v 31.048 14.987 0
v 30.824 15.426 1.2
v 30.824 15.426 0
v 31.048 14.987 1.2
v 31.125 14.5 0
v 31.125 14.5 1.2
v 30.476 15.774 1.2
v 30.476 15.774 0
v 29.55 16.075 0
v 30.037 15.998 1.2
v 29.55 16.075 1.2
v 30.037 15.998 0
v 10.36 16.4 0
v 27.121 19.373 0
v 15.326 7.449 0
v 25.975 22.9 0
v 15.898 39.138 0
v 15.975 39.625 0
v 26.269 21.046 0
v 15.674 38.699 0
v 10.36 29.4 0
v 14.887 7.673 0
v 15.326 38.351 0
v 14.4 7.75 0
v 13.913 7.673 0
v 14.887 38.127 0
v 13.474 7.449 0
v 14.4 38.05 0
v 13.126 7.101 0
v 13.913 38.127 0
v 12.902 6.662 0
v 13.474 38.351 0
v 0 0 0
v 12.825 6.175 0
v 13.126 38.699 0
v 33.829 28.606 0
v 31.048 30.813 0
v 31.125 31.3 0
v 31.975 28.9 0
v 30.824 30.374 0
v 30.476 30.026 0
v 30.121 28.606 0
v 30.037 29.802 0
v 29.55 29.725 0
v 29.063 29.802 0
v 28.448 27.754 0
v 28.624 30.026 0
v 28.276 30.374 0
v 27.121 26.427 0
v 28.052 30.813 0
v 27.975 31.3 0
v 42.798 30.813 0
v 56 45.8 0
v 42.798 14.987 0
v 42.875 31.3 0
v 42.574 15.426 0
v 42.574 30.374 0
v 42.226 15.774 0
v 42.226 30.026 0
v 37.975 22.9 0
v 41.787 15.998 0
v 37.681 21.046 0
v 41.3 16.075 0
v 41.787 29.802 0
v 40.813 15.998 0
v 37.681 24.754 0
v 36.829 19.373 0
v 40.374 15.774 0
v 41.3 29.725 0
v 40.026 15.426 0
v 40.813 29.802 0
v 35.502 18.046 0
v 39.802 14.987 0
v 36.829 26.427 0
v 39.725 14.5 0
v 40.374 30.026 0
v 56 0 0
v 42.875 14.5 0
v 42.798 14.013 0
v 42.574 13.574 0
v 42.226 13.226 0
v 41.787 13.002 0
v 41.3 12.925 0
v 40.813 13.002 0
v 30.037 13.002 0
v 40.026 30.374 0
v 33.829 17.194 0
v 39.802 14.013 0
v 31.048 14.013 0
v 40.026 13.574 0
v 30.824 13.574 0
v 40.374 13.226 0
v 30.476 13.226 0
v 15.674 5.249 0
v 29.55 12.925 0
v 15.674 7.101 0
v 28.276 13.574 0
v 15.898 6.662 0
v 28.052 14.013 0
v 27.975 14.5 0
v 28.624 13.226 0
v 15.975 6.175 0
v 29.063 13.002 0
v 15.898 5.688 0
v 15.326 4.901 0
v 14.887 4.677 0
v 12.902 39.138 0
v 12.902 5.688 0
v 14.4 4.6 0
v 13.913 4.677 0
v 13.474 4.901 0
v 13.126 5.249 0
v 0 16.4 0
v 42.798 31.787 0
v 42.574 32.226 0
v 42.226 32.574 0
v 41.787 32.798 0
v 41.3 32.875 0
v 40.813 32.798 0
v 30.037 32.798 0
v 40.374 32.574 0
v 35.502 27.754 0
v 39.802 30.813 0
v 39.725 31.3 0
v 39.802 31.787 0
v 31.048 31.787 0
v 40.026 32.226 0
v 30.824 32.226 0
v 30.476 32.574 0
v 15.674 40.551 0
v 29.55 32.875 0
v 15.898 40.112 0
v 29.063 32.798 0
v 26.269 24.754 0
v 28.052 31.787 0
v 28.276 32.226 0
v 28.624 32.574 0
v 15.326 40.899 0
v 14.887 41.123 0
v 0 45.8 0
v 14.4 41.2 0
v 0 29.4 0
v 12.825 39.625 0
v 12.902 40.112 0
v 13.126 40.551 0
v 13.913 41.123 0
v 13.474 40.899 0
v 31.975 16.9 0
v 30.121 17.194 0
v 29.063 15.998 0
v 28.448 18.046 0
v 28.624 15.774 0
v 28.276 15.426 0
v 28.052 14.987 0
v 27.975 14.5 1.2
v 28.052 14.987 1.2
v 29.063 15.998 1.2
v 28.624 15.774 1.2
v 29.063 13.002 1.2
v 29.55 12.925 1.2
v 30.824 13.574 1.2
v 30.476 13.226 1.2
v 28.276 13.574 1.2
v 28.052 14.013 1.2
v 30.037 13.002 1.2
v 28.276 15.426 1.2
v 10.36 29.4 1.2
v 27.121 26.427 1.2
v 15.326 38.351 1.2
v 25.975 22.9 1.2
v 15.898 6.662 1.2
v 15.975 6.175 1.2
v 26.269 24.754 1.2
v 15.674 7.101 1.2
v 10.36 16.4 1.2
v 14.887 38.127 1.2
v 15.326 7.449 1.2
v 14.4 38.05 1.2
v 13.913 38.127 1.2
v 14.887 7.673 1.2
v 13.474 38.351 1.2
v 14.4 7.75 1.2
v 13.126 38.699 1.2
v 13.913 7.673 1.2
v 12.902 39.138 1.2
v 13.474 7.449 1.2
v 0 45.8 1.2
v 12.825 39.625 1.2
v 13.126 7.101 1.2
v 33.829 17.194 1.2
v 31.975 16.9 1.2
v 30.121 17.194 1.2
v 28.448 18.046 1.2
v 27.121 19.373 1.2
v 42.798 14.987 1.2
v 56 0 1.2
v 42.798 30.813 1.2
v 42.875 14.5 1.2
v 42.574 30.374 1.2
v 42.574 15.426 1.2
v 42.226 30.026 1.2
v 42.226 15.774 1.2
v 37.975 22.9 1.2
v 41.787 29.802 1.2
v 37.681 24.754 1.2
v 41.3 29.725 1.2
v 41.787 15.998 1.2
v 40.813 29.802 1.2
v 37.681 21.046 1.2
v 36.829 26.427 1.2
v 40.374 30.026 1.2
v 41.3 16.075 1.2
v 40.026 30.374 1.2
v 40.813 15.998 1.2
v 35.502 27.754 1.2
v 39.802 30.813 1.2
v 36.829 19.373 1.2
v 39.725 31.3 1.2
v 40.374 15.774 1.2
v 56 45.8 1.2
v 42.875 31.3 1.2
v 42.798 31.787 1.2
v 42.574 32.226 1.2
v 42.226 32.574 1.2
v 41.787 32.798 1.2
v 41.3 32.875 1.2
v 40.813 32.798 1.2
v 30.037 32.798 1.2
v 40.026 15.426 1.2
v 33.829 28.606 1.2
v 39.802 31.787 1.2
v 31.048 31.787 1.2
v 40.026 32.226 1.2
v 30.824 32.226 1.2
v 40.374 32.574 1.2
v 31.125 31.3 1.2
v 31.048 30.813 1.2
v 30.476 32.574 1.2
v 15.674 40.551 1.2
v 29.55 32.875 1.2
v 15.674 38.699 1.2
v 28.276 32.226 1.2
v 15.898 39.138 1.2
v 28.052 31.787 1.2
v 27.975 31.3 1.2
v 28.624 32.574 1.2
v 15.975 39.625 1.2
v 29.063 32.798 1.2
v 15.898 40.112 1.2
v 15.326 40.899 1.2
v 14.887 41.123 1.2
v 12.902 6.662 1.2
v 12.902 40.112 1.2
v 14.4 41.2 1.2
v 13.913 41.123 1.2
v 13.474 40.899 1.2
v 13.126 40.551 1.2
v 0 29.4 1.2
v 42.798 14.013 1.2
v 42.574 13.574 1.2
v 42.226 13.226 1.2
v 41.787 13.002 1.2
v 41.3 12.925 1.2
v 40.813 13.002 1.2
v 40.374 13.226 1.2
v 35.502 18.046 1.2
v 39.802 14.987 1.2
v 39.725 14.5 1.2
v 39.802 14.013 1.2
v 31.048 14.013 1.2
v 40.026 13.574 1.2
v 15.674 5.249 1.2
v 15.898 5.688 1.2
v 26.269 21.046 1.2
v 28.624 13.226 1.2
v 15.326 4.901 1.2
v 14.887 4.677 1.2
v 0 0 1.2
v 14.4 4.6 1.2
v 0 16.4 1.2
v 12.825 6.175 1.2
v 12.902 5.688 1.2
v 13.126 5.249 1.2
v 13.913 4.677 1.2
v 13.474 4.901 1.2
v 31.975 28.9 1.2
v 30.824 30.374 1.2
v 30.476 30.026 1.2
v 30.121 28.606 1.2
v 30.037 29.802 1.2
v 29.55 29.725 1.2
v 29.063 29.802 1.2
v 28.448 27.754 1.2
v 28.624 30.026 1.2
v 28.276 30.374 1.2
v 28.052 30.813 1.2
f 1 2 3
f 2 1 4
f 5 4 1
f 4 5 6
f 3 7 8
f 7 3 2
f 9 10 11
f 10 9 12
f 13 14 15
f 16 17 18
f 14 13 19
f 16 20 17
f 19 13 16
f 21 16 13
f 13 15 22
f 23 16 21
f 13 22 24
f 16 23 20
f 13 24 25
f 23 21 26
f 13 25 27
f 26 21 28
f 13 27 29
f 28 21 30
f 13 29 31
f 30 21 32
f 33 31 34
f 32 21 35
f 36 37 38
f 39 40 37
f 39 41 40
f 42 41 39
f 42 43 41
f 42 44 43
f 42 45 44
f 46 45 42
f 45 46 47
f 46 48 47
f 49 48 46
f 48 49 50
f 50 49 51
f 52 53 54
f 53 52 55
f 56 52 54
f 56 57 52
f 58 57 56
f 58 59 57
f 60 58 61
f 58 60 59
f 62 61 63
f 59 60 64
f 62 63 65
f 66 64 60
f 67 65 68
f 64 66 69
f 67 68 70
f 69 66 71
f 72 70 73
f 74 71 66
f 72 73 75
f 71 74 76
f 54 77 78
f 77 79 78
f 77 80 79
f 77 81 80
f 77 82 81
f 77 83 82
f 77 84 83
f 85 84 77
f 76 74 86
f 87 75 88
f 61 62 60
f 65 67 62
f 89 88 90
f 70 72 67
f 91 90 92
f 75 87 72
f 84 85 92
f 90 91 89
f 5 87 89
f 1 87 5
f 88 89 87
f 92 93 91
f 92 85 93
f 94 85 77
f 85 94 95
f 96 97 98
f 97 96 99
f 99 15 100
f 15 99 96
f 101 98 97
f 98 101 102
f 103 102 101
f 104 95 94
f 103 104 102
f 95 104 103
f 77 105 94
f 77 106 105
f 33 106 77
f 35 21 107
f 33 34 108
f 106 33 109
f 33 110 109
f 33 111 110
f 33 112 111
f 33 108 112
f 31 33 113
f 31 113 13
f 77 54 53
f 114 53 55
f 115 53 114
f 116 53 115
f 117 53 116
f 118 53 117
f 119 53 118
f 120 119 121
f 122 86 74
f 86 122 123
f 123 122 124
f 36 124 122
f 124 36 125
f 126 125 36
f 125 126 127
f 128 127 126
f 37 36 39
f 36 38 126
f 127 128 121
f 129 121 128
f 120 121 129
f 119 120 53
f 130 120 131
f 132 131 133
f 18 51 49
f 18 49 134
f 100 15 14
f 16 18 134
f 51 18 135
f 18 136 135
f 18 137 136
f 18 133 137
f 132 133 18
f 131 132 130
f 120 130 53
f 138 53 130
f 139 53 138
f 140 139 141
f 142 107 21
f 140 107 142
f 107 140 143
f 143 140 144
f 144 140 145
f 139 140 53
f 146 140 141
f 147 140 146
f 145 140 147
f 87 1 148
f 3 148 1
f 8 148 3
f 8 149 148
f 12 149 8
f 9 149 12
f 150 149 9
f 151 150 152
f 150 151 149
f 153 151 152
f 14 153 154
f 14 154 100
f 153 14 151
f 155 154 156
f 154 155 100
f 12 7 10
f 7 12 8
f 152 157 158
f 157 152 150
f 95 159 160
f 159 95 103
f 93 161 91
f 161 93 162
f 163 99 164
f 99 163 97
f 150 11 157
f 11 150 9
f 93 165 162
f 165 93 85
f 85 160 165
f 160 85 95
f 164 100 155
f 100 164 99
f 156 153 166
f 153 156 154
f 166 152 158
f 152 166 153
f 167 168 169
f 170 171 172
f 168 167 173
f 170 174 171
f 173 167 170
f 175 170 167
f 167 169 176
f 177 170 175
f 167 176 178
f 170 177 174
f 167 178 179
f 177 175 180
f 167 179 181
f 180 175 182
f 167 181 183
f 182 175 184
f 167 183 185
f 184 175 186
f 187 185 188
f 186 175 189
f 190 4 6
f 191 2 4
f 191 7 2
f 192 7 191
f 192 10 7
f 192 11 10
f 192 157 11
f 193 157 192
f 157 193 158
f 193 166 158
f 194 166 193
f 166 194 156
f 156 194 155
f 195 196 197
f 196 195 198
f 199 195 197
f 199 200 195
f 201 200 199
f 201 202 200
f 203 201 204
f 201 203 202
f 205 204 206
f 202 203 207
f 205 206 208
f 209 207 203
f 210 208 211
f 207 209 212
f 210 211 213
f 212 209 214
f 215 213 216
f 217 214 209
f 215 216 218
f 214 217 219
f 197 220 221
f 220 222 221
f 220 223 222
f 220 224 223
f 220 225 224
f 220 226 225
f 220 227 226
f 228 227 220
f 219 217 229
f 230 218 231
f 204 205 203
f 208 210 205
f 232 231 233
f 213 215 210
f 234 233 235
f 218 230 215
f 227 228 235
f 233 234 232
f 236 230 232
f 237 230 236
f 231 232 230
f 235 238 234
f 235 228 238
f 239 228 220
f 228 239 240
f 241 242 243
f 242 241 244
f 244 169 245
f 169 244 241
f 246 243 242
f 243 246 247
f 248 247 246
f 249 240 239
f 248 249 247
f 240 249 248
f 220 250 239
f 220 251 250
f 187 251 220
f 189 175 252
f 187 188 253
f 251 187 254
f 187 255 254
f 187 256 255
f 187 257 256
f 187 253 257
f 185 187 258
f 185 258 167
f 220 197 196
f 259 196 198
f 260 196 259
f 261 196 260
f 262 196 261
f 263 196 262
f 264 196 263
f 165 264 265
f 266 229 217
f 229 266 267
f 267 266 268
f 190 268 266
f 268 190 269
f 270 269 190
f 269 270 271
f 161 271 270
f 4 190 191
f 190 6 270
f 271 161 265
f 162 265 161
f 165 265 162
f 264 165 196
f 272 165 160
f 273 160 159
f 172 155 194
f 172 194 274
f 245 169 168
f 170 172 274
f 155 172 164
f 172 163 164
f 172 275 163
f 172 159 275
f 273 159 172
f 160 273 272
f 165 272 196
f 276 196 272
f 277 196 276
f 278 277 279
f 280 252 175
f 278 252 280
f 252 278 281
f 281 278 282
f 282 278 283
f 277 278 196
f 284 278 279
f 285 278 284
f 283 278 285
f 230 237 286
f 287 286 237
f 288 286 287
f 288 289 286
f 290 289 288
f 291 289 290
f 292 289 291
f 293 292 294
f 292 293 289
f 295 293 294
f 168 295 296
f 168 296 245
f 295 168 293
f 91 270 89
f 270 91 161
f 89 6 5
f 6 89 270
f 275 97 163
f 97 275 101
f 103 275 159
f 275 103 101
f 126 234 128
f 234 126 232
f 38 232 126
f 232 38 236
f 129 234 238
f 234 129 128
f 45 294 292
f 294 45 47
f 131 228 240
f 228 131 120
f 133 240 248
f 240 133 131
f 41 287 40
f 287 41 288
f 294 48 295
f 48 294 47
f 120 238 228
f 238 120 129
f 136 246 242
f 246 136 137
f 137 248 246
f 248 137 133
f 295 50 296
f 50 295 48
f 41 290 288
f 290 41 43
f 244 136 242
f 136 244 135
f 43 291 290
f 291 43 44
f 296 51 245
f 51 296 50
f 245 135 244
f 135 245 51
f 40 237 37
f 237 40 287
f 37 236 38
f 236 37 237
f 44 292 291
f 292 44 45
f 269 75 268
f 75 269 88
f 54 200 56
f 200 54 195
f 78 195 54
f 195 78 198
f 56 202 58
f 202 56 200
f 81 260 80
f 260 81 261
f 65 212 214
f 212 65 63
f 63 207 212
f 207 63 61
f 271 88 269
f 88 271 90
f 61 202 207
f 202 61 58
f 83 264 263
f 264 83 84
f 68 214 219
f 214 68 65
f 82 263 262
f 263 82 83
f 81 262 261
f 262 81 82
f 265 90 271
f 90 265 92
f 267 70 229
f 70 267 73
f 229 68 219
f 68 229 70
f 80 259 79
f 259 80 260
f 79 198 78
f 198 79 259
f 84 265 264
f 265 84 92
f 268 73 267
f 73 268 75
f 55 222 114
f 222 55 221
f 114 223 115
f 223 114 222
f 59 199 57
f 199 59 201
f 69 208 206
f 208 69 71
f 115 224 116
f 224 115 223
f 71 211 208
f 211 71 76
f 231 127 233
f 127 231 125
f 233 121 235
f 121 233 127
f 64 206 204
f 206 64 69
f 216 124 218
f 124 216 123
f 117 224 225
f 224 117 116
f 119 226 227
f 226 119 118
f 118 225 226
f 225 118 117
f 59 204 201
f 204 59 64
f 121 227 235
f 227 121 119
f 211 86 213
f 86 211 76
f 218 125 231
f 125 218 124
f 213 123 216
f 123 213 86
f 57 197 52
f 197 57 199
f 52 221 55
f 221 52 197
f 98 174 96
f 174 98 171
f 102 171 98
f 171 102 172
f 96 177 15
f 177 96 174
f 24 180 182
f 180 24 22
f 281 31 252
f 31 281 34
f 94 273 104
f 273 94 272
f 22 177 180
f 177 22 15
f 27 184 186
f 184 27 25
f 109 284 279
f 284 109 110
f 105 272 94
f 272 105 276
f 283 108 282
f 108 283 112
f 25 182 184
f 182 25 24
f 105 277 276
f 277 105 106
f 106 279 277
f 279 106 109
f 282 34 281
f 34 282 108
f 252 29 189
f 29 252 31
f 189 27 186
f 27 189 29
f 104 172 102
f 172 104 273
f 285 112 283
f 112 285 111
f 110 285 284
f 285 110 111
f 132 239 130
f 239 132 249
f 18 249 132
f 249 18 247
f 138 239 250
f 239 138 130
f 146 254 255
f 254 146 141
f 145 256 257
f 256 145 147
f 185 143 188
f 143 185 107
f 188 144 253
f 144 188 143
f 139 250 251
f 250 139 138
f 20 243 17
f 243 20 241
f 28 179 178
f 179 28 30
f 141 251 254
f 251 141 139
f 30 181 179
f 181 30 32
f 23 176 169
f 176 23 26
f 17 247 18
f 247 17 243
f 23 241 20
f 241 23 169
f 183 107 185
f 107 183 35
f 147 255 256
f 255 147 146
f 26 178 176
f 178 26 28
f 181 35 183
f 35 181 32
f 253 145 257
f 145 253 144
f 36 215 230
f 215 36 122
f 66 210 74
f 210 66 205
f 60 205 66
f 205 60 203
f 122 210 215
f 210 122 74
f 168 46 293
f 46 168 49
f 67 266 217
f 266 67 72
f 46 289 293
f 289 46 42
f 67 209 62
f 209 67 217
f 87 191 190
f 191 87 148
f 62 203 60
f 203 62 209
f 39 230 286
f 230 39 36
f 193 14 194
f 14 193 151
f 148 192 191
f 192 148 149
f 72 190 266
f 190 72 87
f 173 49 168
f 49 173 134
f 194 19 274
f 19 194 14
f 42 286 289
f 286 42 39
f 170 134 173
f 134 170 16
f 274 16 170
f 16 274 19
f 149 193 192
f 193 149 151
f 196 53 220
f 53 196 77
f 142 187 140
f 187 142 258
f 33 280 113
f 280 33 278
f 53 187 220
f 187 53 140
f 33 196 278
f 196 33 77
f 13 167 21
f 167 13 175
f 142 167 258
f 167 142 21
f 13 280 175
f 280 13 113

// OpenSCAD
$fn = 20;

mainPlateThickness = 1.2;
//mainPlateDimensions = [59,45.8, mainPlateThickness];
mainPlateDimensions = [56,45.8, mainPlateThickness];

usbDimensions = [10.36, 13, mainPlateThickness];

// pair of holes near the usb slot
pairHoleYGap = 33.45;
//pairHoleEdgeXOffset = 18.4;
//pairQuadHoleXGap = 15.15;
pairHoleEdgeXOffset = 14.4; // from the top edge to the pair of holes
pairQuadHoleXGap = 15.15; // from the hole pair to the top left of quad

//all measured from the outer edge of mainPlate
wideHoleYOffset = 4.5;
narrowHoleYOffset = 12.8;
bigHoleYOffset = 16.85;

module mainPlate(d=mainPlateDimensions, du=usbDimensions, holeYGap=quadHoleGaps[1]) {
    difference() {
        cube(d);
        translate([0,(d[1]-du[1])/2,0]) cube(du);
        translate([pairHoleEdgeXOffset+pairQuadHoleXGap,(d[1]-holeYGap)/2,0])
            holeAssembly() { 
                holeSet(); 
                holeSet(gapMatrix=[0, pairHoleYGap]);
            };
    };
};
mainPlate();

smallDia = 3.15;
quadHoleGaps = [11.75, 16.8]; // [xGap, yGap] so evenly spaced
module holeSet(h=mainPlateThickness, gapMatrix=quadHoleGaps, d=smallDia) {
    for ( x=[0, gapMatrix[0]], y=[0, gapMatrix[1]] ) {
        translate([x,y,0]) cylinder(d=d, h=h);
    };
};

// origin is the near top left hole from the big one
bigDia = 12;
bigHoleOffset = [2.425, quadHoleGaps[1]/2];
module holeAssembly(h=mainPlateThickness, db=bigDia, bigOff=bigHoleOffset, ds=smallDia, pairQuadGap=pairQuadHoleXGap) {
    children(0); // holeSet(gapMatrix);
    translate([-pairQuadGap, (-pairHoleYGap+quadHoleGaps[1])/2, 0])
        children(1); // holeSet(gapMatrix=[0, pairHoleYGap]);
    translate([bigOff[0],bigOff[1],0]) cylinder(d=db, h=h);
};
/* holeAssembly() { */ 
/*     holeSet(); */ 
/*     holeSet(gapMatrix=[0, pairHoleYGap]); */
/* }; */

// pending translate
module topPlate() {
    difference() {
        mainPlate();
        translate([0,0,0]) holeAssembly();
    };
};
//topPlate();
